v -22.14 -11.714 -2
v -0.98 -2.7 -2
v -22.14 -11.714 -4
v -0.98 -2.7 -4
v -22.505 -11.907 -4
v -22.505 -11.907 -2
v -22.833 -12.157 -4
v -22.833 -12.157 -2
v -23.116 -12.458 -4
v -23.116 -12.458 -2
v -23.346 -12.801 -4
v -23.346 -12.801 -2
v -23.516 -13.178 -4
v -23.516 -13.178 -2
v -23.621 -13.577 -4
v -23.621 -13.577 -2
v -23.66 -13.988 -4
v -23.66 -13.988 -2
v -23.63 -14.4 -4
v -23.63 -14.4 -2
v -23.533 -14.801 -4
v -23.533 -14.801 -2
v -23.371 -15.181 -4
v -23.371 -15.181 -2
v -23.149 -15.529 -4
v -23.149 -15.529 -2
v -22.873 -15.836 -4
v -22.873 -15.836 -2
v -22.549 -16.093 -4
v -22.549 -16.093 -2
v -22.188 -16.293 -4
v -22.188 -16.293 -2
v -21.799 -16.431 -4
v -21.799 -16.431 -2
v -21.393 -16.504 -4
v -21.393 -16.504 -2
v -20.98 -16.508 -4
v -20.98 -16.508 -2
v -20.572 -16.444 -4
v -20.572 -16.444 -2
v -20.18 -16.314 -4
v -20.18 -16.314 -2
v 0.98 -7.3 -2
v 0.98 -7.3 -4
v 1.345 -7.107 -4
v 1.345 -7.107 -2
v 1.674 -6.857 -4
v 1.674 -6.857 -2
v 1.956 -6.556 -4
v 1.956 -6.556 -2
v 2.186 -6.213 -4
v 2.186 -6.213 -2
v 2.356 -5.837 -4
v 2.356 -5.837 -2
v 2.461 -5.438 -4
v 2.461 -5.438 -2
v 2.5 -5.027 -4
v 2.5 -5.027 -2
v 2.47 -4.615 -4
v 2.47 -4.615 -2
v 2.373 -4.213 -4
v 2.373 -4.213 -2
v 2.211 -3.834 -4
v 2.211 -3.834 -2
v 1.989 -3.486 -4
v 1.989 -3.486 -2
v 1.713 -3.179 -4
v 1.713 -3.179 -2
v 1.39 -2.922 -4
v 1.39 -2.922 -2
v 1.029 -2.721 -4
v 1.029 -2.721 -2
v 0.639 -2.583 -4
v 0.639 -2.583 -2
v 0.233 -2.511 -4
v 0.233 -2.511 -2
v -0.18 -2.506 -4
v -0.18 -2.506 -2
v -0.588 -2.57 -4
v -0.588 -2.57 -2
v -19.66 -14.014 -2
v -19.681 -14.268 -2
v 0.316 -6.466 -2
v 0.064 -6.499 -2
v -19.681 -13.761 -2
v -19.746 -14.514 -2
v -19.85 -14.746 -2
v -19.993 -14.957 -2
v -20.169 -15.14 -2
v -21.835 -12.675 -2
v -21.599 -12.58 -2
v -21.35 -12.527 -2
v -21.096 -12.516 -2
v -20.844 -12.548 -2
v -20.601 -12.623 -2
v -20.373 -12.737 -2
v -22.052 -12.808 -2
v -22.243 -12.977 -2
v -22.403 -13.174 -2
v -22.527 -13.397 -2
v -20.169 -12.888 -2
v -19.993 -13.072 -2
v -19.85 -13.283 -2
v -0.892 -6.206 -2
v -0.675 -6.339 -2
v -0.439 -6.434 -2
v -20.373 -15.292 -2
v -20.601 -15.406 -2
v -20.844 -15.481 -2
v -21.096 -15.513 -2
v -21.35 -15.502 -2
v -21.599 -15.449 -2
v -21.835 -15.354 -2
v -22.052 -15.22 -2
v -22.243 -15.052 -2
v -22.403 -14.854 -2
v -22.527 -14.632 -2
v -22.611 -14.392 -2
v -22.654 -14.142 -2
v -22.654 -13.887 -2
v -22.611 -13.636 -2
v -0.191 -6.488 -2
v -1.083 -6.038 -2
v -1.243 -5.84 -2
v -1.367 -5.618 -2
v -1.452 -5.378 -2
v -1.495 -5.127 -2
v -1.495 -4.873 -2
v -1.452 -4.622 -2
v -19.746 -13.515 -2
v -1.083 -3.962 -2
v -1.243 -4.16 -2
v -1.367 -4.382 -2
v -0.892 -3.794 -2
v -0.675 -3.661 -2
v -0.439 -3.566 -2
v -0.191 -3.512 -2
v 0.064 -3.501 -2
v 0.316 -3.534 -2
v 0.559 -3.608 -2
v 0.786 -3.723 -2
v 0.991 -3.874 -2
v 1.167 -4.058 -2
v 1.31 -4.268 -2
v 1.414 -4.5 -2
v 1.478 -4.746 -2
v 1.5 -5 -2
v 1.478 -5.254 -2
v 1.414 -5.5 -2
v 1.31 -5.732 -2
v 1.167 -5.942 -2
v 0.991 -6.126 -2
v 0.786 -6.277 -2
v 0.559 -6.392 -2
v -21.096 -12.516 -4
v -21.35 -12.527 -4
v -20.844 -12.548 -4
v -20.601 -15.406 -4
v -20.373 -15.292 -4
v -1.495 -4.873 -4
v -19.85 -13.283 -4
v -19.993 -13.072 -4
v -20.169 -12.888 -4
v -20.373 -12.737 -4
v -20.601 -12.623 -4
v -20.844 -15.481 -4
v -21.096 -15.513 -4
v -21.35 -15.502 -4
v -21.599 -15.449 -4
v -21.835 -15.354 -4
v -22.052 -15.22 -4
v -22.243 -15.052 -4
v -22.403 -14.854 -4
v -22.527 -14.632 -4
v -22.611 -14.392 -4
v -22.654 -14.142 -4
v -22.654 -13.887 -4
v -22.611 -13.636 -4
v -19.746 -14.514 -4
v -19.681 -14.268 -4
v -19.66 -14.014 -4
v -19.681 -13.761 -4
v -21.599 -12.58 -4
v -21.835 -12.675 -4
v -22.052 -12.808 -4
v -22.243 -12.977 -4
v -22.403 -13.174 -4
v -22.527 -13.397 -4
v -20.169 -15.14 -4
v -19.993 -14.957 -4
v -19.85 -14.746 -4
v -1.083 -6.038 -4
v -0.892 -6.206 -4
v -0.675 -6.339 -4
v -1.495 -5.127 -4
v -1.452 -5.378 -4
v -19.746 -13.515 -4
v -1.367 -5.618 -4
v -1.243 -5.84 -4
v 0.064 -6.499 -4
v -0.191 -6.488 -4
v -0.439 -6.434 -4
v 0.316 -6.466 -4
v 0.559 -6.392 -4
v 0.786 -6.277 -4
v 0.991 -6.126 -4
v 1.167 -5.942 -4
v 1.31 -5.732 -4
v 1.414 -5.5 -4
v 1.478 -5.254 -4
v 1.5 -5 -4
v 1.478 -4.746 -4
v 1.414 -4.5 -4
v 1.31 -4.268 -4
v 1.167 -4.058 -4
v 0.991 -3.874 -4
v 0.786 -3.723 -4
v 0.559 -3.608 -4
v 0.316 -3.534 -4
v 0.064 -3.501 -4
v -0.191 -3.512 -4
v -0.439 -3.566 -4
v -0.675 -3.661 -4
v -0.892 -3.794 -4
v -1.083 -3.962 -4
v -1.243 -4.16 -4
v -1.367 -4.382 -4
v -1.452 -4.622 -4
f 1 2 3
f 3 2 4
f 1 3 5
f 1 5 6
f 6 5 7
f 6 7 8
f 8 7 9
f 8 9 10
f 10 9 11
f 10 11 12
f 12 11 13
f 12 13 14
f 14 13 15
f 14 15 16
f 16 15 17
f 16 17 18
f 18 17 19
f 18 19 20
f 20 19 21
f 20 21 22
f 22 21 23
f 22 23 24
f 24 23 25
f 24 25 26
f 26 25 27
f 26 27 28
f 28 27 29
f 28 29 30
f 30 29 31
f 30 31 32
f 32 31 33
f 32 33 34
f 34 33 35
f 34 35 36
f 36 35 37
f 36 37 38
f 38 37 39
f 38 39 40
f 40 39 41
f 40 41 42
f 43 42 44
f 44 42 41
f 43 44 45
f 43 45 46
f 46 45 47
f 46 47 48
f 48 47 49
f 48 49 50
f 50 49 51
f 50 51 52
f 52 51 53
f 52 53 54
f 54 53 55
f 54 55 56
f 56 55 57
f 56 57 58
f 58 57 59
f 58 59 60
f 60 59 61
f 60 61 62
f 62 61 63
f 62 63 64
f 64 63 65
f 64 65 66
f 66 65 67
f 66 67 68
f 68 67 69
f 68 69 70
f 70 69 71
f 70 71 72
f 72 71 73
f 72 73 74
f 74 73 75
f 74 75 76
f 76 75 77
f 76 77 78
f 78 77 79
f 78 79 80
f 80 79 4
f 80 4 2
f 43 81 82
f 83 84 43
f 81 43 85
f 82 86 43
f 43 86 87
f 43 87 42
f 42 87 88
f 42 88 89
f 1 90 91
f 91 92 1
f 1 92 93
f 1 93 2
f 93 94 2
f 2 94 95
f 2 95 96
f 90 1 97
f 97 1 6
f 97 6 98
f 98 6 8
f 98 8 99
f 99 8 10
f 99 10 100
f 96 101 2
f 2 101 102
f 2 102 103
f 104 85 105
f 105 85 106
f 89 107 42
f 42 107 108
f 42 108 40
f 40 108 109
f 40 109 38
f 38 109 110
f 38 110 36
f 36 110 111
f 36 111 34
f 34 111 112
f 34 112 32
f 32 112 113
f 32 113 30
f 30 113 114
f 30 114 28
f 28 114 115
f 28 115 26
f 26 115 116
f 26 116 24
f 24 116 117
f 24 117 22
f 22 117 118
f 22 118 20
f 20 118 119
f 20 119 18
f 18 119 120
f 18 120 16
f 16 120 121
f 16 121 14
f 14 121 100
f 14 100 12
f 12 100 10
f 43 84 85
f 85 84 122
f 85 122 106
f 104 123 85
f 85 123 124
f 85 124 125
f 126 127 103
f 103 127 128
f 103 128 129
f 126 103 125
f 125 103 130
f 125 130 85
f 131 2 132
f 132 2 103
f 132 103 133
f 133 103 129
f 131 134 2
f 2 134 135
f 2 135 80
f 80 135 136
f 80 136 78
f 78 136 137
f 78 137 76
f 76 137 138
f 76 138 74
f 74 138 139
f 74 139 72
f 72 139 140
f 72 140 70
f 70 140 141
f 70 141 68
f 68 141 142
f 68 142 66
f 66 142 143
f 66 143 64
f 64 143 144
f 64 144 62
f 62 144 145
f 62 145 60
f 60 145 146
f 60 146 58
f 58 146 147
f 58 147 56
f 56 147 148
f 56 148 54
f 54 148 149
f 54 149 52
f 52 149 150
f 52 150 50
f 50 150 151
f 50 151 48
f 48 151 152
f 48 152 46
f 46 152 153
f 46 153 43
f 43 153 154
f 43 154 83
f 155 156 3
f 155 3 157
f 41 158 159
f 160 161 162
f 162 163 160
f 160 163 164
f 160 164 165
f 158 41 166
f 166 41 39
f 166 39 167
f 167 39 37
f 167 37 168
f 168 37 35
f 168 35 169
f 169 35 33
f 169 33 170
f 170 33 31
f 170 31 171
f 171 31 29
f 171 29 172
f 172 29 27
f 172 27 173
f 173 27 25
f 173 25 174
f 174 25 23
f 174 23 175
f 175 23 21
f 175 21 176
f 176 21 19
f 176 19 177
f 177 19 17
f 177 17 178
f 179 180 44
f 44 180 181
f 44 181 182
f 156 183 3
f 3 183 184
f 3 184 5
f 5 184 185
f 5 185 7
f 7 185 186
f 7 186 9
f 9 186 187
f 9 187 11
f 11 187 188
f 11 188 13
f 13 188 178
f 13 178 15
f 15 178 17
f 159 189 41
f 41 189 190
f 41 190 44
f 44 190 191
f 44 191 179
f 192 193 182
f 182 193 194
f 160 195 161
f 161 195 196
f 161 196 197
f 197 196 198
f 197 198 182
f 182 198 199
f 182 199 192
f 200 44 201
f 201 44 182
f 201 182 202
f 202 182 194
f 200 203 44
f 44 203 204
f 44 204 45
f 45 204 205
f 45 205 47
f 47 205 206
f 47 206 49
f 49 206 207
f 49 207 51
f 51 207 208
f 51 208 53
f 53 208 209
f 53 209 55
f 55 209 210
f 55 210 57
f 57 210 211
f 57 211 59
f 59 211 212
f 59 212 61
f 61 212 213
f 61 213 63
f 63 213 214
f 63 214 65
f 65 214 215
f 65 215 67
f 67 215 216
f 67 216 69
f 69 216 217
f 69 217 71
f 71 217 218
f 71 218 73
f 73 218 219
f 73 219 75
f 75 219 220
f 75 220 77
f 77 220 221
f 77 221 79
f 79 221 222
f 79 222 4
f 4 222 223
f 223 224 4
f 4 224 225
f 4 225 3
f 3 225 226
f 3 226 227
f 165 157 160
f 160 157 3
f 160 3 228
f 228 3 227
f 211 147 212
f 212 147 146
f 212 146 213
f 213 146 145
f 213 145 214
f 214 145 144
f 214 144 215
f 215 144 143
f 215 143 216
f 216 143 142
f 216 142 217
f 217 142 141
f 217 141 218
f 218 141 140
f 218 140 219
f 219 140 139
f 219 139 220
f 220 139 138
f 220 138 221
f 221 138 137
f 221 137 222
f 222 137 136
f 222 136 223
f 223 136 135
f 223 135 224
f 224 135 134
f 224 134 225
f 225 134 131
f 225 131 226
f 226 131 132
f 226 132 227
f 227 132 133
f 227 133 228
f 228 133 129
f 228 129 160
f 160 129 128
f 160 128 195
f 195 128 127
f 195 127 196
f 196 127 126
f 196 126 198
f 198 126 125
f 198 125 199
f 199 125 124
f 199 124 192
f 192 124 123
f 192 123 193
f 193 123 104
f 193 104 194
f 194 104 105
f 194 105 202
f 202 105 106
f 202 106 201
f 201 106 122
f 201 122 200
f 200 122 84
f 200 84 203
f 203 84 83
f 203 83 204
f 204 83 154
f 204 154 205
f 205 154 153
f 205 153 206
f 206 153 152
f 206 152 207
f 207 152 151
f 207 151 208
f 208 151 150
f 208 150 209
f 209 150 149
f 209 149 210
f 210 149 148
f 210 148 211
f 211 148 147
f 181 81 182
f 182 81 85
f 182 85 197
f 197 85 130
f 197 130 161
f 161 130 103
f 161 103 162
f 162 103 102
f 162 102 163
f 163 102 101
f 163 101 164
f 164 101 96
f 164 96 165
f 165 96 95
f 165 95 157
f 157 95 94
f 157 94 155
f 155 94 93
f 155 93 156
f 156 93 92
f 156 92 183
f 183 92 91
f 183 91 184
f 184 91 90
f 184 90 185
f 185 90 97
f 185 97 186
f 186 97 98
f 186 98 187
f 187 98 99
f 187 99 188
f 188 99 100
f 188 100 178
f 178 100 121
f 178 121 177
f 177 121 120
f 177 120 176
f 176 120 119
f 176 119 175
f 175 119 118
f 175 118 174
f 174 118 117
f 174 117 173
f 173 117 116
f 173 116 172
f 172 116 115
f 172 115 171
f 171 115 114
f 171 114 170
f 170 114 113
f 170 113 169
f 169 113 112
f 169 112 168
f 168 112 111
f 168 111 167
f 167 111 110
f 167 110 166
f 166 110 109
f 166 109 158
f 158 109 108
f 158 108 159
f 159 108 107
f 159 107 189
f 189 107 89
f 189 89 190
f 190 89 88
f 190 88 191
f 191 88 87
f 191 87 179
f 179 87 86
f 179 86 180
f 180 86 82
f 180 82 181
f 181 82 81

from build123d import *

# Parameters (mm, degrees)
BOSS_EXTRU_1_START      = -4
BOSS_EXTRU_1_DEPTH      = 2
ESQUISSE2_R             = 1.5
ENL_V_MAT_EXTRU_1_DEPTH = 2


with BuildPart() as part:
    # Esquisse1 → Boss.-Extru.1 (new body)
    with BuildSketch(Plane.XY.offset(BOSS_EXTRU_1_START)):
        with BuildLine():
            Line((-20.180030535, -16.314431829), (0.97983118, -7.299984969))
            ThreePointArc((0.97983118, -7.299984969), (2.40785155, -4.327503968), (-0.353745657, -2.52515374))
            ThreePointArc((-0.353745657, -2.52515374), (-0.672496032, -2.59214845), (-0.97983118, -2.700015031))
            Line((-0.97983118, -2.700015031), (-6.059542219, -4.86405494))
            Line((-6.059542219, -4.86405494), (-22.139692896, -11.714461891))
            ThreePointArc((-22.139692896, -11.714461891), (-23.459846684, -14.994278041), (-20.180030535, -16.314431829))
        make_face()
    extrude(amount=BOSS_EXTRU_1_DEPTH)

    # Esquisse2 → Enlèv. mat.-Extru.1 (cut)
    with BuildSketch(Plane.XY.offset(-2)):
        with Locations((-21.159861715, -14.01444686)):
            Circle(ESQUISSE2_R)
        with Locations((0, -5)):
            Circle(ESQUISSE2_R)
    extrude(amount=-ENL_V_MAT_EXTRU_1_DEPTH, mode=Mode.SUBTRACT)


solid = part.part
